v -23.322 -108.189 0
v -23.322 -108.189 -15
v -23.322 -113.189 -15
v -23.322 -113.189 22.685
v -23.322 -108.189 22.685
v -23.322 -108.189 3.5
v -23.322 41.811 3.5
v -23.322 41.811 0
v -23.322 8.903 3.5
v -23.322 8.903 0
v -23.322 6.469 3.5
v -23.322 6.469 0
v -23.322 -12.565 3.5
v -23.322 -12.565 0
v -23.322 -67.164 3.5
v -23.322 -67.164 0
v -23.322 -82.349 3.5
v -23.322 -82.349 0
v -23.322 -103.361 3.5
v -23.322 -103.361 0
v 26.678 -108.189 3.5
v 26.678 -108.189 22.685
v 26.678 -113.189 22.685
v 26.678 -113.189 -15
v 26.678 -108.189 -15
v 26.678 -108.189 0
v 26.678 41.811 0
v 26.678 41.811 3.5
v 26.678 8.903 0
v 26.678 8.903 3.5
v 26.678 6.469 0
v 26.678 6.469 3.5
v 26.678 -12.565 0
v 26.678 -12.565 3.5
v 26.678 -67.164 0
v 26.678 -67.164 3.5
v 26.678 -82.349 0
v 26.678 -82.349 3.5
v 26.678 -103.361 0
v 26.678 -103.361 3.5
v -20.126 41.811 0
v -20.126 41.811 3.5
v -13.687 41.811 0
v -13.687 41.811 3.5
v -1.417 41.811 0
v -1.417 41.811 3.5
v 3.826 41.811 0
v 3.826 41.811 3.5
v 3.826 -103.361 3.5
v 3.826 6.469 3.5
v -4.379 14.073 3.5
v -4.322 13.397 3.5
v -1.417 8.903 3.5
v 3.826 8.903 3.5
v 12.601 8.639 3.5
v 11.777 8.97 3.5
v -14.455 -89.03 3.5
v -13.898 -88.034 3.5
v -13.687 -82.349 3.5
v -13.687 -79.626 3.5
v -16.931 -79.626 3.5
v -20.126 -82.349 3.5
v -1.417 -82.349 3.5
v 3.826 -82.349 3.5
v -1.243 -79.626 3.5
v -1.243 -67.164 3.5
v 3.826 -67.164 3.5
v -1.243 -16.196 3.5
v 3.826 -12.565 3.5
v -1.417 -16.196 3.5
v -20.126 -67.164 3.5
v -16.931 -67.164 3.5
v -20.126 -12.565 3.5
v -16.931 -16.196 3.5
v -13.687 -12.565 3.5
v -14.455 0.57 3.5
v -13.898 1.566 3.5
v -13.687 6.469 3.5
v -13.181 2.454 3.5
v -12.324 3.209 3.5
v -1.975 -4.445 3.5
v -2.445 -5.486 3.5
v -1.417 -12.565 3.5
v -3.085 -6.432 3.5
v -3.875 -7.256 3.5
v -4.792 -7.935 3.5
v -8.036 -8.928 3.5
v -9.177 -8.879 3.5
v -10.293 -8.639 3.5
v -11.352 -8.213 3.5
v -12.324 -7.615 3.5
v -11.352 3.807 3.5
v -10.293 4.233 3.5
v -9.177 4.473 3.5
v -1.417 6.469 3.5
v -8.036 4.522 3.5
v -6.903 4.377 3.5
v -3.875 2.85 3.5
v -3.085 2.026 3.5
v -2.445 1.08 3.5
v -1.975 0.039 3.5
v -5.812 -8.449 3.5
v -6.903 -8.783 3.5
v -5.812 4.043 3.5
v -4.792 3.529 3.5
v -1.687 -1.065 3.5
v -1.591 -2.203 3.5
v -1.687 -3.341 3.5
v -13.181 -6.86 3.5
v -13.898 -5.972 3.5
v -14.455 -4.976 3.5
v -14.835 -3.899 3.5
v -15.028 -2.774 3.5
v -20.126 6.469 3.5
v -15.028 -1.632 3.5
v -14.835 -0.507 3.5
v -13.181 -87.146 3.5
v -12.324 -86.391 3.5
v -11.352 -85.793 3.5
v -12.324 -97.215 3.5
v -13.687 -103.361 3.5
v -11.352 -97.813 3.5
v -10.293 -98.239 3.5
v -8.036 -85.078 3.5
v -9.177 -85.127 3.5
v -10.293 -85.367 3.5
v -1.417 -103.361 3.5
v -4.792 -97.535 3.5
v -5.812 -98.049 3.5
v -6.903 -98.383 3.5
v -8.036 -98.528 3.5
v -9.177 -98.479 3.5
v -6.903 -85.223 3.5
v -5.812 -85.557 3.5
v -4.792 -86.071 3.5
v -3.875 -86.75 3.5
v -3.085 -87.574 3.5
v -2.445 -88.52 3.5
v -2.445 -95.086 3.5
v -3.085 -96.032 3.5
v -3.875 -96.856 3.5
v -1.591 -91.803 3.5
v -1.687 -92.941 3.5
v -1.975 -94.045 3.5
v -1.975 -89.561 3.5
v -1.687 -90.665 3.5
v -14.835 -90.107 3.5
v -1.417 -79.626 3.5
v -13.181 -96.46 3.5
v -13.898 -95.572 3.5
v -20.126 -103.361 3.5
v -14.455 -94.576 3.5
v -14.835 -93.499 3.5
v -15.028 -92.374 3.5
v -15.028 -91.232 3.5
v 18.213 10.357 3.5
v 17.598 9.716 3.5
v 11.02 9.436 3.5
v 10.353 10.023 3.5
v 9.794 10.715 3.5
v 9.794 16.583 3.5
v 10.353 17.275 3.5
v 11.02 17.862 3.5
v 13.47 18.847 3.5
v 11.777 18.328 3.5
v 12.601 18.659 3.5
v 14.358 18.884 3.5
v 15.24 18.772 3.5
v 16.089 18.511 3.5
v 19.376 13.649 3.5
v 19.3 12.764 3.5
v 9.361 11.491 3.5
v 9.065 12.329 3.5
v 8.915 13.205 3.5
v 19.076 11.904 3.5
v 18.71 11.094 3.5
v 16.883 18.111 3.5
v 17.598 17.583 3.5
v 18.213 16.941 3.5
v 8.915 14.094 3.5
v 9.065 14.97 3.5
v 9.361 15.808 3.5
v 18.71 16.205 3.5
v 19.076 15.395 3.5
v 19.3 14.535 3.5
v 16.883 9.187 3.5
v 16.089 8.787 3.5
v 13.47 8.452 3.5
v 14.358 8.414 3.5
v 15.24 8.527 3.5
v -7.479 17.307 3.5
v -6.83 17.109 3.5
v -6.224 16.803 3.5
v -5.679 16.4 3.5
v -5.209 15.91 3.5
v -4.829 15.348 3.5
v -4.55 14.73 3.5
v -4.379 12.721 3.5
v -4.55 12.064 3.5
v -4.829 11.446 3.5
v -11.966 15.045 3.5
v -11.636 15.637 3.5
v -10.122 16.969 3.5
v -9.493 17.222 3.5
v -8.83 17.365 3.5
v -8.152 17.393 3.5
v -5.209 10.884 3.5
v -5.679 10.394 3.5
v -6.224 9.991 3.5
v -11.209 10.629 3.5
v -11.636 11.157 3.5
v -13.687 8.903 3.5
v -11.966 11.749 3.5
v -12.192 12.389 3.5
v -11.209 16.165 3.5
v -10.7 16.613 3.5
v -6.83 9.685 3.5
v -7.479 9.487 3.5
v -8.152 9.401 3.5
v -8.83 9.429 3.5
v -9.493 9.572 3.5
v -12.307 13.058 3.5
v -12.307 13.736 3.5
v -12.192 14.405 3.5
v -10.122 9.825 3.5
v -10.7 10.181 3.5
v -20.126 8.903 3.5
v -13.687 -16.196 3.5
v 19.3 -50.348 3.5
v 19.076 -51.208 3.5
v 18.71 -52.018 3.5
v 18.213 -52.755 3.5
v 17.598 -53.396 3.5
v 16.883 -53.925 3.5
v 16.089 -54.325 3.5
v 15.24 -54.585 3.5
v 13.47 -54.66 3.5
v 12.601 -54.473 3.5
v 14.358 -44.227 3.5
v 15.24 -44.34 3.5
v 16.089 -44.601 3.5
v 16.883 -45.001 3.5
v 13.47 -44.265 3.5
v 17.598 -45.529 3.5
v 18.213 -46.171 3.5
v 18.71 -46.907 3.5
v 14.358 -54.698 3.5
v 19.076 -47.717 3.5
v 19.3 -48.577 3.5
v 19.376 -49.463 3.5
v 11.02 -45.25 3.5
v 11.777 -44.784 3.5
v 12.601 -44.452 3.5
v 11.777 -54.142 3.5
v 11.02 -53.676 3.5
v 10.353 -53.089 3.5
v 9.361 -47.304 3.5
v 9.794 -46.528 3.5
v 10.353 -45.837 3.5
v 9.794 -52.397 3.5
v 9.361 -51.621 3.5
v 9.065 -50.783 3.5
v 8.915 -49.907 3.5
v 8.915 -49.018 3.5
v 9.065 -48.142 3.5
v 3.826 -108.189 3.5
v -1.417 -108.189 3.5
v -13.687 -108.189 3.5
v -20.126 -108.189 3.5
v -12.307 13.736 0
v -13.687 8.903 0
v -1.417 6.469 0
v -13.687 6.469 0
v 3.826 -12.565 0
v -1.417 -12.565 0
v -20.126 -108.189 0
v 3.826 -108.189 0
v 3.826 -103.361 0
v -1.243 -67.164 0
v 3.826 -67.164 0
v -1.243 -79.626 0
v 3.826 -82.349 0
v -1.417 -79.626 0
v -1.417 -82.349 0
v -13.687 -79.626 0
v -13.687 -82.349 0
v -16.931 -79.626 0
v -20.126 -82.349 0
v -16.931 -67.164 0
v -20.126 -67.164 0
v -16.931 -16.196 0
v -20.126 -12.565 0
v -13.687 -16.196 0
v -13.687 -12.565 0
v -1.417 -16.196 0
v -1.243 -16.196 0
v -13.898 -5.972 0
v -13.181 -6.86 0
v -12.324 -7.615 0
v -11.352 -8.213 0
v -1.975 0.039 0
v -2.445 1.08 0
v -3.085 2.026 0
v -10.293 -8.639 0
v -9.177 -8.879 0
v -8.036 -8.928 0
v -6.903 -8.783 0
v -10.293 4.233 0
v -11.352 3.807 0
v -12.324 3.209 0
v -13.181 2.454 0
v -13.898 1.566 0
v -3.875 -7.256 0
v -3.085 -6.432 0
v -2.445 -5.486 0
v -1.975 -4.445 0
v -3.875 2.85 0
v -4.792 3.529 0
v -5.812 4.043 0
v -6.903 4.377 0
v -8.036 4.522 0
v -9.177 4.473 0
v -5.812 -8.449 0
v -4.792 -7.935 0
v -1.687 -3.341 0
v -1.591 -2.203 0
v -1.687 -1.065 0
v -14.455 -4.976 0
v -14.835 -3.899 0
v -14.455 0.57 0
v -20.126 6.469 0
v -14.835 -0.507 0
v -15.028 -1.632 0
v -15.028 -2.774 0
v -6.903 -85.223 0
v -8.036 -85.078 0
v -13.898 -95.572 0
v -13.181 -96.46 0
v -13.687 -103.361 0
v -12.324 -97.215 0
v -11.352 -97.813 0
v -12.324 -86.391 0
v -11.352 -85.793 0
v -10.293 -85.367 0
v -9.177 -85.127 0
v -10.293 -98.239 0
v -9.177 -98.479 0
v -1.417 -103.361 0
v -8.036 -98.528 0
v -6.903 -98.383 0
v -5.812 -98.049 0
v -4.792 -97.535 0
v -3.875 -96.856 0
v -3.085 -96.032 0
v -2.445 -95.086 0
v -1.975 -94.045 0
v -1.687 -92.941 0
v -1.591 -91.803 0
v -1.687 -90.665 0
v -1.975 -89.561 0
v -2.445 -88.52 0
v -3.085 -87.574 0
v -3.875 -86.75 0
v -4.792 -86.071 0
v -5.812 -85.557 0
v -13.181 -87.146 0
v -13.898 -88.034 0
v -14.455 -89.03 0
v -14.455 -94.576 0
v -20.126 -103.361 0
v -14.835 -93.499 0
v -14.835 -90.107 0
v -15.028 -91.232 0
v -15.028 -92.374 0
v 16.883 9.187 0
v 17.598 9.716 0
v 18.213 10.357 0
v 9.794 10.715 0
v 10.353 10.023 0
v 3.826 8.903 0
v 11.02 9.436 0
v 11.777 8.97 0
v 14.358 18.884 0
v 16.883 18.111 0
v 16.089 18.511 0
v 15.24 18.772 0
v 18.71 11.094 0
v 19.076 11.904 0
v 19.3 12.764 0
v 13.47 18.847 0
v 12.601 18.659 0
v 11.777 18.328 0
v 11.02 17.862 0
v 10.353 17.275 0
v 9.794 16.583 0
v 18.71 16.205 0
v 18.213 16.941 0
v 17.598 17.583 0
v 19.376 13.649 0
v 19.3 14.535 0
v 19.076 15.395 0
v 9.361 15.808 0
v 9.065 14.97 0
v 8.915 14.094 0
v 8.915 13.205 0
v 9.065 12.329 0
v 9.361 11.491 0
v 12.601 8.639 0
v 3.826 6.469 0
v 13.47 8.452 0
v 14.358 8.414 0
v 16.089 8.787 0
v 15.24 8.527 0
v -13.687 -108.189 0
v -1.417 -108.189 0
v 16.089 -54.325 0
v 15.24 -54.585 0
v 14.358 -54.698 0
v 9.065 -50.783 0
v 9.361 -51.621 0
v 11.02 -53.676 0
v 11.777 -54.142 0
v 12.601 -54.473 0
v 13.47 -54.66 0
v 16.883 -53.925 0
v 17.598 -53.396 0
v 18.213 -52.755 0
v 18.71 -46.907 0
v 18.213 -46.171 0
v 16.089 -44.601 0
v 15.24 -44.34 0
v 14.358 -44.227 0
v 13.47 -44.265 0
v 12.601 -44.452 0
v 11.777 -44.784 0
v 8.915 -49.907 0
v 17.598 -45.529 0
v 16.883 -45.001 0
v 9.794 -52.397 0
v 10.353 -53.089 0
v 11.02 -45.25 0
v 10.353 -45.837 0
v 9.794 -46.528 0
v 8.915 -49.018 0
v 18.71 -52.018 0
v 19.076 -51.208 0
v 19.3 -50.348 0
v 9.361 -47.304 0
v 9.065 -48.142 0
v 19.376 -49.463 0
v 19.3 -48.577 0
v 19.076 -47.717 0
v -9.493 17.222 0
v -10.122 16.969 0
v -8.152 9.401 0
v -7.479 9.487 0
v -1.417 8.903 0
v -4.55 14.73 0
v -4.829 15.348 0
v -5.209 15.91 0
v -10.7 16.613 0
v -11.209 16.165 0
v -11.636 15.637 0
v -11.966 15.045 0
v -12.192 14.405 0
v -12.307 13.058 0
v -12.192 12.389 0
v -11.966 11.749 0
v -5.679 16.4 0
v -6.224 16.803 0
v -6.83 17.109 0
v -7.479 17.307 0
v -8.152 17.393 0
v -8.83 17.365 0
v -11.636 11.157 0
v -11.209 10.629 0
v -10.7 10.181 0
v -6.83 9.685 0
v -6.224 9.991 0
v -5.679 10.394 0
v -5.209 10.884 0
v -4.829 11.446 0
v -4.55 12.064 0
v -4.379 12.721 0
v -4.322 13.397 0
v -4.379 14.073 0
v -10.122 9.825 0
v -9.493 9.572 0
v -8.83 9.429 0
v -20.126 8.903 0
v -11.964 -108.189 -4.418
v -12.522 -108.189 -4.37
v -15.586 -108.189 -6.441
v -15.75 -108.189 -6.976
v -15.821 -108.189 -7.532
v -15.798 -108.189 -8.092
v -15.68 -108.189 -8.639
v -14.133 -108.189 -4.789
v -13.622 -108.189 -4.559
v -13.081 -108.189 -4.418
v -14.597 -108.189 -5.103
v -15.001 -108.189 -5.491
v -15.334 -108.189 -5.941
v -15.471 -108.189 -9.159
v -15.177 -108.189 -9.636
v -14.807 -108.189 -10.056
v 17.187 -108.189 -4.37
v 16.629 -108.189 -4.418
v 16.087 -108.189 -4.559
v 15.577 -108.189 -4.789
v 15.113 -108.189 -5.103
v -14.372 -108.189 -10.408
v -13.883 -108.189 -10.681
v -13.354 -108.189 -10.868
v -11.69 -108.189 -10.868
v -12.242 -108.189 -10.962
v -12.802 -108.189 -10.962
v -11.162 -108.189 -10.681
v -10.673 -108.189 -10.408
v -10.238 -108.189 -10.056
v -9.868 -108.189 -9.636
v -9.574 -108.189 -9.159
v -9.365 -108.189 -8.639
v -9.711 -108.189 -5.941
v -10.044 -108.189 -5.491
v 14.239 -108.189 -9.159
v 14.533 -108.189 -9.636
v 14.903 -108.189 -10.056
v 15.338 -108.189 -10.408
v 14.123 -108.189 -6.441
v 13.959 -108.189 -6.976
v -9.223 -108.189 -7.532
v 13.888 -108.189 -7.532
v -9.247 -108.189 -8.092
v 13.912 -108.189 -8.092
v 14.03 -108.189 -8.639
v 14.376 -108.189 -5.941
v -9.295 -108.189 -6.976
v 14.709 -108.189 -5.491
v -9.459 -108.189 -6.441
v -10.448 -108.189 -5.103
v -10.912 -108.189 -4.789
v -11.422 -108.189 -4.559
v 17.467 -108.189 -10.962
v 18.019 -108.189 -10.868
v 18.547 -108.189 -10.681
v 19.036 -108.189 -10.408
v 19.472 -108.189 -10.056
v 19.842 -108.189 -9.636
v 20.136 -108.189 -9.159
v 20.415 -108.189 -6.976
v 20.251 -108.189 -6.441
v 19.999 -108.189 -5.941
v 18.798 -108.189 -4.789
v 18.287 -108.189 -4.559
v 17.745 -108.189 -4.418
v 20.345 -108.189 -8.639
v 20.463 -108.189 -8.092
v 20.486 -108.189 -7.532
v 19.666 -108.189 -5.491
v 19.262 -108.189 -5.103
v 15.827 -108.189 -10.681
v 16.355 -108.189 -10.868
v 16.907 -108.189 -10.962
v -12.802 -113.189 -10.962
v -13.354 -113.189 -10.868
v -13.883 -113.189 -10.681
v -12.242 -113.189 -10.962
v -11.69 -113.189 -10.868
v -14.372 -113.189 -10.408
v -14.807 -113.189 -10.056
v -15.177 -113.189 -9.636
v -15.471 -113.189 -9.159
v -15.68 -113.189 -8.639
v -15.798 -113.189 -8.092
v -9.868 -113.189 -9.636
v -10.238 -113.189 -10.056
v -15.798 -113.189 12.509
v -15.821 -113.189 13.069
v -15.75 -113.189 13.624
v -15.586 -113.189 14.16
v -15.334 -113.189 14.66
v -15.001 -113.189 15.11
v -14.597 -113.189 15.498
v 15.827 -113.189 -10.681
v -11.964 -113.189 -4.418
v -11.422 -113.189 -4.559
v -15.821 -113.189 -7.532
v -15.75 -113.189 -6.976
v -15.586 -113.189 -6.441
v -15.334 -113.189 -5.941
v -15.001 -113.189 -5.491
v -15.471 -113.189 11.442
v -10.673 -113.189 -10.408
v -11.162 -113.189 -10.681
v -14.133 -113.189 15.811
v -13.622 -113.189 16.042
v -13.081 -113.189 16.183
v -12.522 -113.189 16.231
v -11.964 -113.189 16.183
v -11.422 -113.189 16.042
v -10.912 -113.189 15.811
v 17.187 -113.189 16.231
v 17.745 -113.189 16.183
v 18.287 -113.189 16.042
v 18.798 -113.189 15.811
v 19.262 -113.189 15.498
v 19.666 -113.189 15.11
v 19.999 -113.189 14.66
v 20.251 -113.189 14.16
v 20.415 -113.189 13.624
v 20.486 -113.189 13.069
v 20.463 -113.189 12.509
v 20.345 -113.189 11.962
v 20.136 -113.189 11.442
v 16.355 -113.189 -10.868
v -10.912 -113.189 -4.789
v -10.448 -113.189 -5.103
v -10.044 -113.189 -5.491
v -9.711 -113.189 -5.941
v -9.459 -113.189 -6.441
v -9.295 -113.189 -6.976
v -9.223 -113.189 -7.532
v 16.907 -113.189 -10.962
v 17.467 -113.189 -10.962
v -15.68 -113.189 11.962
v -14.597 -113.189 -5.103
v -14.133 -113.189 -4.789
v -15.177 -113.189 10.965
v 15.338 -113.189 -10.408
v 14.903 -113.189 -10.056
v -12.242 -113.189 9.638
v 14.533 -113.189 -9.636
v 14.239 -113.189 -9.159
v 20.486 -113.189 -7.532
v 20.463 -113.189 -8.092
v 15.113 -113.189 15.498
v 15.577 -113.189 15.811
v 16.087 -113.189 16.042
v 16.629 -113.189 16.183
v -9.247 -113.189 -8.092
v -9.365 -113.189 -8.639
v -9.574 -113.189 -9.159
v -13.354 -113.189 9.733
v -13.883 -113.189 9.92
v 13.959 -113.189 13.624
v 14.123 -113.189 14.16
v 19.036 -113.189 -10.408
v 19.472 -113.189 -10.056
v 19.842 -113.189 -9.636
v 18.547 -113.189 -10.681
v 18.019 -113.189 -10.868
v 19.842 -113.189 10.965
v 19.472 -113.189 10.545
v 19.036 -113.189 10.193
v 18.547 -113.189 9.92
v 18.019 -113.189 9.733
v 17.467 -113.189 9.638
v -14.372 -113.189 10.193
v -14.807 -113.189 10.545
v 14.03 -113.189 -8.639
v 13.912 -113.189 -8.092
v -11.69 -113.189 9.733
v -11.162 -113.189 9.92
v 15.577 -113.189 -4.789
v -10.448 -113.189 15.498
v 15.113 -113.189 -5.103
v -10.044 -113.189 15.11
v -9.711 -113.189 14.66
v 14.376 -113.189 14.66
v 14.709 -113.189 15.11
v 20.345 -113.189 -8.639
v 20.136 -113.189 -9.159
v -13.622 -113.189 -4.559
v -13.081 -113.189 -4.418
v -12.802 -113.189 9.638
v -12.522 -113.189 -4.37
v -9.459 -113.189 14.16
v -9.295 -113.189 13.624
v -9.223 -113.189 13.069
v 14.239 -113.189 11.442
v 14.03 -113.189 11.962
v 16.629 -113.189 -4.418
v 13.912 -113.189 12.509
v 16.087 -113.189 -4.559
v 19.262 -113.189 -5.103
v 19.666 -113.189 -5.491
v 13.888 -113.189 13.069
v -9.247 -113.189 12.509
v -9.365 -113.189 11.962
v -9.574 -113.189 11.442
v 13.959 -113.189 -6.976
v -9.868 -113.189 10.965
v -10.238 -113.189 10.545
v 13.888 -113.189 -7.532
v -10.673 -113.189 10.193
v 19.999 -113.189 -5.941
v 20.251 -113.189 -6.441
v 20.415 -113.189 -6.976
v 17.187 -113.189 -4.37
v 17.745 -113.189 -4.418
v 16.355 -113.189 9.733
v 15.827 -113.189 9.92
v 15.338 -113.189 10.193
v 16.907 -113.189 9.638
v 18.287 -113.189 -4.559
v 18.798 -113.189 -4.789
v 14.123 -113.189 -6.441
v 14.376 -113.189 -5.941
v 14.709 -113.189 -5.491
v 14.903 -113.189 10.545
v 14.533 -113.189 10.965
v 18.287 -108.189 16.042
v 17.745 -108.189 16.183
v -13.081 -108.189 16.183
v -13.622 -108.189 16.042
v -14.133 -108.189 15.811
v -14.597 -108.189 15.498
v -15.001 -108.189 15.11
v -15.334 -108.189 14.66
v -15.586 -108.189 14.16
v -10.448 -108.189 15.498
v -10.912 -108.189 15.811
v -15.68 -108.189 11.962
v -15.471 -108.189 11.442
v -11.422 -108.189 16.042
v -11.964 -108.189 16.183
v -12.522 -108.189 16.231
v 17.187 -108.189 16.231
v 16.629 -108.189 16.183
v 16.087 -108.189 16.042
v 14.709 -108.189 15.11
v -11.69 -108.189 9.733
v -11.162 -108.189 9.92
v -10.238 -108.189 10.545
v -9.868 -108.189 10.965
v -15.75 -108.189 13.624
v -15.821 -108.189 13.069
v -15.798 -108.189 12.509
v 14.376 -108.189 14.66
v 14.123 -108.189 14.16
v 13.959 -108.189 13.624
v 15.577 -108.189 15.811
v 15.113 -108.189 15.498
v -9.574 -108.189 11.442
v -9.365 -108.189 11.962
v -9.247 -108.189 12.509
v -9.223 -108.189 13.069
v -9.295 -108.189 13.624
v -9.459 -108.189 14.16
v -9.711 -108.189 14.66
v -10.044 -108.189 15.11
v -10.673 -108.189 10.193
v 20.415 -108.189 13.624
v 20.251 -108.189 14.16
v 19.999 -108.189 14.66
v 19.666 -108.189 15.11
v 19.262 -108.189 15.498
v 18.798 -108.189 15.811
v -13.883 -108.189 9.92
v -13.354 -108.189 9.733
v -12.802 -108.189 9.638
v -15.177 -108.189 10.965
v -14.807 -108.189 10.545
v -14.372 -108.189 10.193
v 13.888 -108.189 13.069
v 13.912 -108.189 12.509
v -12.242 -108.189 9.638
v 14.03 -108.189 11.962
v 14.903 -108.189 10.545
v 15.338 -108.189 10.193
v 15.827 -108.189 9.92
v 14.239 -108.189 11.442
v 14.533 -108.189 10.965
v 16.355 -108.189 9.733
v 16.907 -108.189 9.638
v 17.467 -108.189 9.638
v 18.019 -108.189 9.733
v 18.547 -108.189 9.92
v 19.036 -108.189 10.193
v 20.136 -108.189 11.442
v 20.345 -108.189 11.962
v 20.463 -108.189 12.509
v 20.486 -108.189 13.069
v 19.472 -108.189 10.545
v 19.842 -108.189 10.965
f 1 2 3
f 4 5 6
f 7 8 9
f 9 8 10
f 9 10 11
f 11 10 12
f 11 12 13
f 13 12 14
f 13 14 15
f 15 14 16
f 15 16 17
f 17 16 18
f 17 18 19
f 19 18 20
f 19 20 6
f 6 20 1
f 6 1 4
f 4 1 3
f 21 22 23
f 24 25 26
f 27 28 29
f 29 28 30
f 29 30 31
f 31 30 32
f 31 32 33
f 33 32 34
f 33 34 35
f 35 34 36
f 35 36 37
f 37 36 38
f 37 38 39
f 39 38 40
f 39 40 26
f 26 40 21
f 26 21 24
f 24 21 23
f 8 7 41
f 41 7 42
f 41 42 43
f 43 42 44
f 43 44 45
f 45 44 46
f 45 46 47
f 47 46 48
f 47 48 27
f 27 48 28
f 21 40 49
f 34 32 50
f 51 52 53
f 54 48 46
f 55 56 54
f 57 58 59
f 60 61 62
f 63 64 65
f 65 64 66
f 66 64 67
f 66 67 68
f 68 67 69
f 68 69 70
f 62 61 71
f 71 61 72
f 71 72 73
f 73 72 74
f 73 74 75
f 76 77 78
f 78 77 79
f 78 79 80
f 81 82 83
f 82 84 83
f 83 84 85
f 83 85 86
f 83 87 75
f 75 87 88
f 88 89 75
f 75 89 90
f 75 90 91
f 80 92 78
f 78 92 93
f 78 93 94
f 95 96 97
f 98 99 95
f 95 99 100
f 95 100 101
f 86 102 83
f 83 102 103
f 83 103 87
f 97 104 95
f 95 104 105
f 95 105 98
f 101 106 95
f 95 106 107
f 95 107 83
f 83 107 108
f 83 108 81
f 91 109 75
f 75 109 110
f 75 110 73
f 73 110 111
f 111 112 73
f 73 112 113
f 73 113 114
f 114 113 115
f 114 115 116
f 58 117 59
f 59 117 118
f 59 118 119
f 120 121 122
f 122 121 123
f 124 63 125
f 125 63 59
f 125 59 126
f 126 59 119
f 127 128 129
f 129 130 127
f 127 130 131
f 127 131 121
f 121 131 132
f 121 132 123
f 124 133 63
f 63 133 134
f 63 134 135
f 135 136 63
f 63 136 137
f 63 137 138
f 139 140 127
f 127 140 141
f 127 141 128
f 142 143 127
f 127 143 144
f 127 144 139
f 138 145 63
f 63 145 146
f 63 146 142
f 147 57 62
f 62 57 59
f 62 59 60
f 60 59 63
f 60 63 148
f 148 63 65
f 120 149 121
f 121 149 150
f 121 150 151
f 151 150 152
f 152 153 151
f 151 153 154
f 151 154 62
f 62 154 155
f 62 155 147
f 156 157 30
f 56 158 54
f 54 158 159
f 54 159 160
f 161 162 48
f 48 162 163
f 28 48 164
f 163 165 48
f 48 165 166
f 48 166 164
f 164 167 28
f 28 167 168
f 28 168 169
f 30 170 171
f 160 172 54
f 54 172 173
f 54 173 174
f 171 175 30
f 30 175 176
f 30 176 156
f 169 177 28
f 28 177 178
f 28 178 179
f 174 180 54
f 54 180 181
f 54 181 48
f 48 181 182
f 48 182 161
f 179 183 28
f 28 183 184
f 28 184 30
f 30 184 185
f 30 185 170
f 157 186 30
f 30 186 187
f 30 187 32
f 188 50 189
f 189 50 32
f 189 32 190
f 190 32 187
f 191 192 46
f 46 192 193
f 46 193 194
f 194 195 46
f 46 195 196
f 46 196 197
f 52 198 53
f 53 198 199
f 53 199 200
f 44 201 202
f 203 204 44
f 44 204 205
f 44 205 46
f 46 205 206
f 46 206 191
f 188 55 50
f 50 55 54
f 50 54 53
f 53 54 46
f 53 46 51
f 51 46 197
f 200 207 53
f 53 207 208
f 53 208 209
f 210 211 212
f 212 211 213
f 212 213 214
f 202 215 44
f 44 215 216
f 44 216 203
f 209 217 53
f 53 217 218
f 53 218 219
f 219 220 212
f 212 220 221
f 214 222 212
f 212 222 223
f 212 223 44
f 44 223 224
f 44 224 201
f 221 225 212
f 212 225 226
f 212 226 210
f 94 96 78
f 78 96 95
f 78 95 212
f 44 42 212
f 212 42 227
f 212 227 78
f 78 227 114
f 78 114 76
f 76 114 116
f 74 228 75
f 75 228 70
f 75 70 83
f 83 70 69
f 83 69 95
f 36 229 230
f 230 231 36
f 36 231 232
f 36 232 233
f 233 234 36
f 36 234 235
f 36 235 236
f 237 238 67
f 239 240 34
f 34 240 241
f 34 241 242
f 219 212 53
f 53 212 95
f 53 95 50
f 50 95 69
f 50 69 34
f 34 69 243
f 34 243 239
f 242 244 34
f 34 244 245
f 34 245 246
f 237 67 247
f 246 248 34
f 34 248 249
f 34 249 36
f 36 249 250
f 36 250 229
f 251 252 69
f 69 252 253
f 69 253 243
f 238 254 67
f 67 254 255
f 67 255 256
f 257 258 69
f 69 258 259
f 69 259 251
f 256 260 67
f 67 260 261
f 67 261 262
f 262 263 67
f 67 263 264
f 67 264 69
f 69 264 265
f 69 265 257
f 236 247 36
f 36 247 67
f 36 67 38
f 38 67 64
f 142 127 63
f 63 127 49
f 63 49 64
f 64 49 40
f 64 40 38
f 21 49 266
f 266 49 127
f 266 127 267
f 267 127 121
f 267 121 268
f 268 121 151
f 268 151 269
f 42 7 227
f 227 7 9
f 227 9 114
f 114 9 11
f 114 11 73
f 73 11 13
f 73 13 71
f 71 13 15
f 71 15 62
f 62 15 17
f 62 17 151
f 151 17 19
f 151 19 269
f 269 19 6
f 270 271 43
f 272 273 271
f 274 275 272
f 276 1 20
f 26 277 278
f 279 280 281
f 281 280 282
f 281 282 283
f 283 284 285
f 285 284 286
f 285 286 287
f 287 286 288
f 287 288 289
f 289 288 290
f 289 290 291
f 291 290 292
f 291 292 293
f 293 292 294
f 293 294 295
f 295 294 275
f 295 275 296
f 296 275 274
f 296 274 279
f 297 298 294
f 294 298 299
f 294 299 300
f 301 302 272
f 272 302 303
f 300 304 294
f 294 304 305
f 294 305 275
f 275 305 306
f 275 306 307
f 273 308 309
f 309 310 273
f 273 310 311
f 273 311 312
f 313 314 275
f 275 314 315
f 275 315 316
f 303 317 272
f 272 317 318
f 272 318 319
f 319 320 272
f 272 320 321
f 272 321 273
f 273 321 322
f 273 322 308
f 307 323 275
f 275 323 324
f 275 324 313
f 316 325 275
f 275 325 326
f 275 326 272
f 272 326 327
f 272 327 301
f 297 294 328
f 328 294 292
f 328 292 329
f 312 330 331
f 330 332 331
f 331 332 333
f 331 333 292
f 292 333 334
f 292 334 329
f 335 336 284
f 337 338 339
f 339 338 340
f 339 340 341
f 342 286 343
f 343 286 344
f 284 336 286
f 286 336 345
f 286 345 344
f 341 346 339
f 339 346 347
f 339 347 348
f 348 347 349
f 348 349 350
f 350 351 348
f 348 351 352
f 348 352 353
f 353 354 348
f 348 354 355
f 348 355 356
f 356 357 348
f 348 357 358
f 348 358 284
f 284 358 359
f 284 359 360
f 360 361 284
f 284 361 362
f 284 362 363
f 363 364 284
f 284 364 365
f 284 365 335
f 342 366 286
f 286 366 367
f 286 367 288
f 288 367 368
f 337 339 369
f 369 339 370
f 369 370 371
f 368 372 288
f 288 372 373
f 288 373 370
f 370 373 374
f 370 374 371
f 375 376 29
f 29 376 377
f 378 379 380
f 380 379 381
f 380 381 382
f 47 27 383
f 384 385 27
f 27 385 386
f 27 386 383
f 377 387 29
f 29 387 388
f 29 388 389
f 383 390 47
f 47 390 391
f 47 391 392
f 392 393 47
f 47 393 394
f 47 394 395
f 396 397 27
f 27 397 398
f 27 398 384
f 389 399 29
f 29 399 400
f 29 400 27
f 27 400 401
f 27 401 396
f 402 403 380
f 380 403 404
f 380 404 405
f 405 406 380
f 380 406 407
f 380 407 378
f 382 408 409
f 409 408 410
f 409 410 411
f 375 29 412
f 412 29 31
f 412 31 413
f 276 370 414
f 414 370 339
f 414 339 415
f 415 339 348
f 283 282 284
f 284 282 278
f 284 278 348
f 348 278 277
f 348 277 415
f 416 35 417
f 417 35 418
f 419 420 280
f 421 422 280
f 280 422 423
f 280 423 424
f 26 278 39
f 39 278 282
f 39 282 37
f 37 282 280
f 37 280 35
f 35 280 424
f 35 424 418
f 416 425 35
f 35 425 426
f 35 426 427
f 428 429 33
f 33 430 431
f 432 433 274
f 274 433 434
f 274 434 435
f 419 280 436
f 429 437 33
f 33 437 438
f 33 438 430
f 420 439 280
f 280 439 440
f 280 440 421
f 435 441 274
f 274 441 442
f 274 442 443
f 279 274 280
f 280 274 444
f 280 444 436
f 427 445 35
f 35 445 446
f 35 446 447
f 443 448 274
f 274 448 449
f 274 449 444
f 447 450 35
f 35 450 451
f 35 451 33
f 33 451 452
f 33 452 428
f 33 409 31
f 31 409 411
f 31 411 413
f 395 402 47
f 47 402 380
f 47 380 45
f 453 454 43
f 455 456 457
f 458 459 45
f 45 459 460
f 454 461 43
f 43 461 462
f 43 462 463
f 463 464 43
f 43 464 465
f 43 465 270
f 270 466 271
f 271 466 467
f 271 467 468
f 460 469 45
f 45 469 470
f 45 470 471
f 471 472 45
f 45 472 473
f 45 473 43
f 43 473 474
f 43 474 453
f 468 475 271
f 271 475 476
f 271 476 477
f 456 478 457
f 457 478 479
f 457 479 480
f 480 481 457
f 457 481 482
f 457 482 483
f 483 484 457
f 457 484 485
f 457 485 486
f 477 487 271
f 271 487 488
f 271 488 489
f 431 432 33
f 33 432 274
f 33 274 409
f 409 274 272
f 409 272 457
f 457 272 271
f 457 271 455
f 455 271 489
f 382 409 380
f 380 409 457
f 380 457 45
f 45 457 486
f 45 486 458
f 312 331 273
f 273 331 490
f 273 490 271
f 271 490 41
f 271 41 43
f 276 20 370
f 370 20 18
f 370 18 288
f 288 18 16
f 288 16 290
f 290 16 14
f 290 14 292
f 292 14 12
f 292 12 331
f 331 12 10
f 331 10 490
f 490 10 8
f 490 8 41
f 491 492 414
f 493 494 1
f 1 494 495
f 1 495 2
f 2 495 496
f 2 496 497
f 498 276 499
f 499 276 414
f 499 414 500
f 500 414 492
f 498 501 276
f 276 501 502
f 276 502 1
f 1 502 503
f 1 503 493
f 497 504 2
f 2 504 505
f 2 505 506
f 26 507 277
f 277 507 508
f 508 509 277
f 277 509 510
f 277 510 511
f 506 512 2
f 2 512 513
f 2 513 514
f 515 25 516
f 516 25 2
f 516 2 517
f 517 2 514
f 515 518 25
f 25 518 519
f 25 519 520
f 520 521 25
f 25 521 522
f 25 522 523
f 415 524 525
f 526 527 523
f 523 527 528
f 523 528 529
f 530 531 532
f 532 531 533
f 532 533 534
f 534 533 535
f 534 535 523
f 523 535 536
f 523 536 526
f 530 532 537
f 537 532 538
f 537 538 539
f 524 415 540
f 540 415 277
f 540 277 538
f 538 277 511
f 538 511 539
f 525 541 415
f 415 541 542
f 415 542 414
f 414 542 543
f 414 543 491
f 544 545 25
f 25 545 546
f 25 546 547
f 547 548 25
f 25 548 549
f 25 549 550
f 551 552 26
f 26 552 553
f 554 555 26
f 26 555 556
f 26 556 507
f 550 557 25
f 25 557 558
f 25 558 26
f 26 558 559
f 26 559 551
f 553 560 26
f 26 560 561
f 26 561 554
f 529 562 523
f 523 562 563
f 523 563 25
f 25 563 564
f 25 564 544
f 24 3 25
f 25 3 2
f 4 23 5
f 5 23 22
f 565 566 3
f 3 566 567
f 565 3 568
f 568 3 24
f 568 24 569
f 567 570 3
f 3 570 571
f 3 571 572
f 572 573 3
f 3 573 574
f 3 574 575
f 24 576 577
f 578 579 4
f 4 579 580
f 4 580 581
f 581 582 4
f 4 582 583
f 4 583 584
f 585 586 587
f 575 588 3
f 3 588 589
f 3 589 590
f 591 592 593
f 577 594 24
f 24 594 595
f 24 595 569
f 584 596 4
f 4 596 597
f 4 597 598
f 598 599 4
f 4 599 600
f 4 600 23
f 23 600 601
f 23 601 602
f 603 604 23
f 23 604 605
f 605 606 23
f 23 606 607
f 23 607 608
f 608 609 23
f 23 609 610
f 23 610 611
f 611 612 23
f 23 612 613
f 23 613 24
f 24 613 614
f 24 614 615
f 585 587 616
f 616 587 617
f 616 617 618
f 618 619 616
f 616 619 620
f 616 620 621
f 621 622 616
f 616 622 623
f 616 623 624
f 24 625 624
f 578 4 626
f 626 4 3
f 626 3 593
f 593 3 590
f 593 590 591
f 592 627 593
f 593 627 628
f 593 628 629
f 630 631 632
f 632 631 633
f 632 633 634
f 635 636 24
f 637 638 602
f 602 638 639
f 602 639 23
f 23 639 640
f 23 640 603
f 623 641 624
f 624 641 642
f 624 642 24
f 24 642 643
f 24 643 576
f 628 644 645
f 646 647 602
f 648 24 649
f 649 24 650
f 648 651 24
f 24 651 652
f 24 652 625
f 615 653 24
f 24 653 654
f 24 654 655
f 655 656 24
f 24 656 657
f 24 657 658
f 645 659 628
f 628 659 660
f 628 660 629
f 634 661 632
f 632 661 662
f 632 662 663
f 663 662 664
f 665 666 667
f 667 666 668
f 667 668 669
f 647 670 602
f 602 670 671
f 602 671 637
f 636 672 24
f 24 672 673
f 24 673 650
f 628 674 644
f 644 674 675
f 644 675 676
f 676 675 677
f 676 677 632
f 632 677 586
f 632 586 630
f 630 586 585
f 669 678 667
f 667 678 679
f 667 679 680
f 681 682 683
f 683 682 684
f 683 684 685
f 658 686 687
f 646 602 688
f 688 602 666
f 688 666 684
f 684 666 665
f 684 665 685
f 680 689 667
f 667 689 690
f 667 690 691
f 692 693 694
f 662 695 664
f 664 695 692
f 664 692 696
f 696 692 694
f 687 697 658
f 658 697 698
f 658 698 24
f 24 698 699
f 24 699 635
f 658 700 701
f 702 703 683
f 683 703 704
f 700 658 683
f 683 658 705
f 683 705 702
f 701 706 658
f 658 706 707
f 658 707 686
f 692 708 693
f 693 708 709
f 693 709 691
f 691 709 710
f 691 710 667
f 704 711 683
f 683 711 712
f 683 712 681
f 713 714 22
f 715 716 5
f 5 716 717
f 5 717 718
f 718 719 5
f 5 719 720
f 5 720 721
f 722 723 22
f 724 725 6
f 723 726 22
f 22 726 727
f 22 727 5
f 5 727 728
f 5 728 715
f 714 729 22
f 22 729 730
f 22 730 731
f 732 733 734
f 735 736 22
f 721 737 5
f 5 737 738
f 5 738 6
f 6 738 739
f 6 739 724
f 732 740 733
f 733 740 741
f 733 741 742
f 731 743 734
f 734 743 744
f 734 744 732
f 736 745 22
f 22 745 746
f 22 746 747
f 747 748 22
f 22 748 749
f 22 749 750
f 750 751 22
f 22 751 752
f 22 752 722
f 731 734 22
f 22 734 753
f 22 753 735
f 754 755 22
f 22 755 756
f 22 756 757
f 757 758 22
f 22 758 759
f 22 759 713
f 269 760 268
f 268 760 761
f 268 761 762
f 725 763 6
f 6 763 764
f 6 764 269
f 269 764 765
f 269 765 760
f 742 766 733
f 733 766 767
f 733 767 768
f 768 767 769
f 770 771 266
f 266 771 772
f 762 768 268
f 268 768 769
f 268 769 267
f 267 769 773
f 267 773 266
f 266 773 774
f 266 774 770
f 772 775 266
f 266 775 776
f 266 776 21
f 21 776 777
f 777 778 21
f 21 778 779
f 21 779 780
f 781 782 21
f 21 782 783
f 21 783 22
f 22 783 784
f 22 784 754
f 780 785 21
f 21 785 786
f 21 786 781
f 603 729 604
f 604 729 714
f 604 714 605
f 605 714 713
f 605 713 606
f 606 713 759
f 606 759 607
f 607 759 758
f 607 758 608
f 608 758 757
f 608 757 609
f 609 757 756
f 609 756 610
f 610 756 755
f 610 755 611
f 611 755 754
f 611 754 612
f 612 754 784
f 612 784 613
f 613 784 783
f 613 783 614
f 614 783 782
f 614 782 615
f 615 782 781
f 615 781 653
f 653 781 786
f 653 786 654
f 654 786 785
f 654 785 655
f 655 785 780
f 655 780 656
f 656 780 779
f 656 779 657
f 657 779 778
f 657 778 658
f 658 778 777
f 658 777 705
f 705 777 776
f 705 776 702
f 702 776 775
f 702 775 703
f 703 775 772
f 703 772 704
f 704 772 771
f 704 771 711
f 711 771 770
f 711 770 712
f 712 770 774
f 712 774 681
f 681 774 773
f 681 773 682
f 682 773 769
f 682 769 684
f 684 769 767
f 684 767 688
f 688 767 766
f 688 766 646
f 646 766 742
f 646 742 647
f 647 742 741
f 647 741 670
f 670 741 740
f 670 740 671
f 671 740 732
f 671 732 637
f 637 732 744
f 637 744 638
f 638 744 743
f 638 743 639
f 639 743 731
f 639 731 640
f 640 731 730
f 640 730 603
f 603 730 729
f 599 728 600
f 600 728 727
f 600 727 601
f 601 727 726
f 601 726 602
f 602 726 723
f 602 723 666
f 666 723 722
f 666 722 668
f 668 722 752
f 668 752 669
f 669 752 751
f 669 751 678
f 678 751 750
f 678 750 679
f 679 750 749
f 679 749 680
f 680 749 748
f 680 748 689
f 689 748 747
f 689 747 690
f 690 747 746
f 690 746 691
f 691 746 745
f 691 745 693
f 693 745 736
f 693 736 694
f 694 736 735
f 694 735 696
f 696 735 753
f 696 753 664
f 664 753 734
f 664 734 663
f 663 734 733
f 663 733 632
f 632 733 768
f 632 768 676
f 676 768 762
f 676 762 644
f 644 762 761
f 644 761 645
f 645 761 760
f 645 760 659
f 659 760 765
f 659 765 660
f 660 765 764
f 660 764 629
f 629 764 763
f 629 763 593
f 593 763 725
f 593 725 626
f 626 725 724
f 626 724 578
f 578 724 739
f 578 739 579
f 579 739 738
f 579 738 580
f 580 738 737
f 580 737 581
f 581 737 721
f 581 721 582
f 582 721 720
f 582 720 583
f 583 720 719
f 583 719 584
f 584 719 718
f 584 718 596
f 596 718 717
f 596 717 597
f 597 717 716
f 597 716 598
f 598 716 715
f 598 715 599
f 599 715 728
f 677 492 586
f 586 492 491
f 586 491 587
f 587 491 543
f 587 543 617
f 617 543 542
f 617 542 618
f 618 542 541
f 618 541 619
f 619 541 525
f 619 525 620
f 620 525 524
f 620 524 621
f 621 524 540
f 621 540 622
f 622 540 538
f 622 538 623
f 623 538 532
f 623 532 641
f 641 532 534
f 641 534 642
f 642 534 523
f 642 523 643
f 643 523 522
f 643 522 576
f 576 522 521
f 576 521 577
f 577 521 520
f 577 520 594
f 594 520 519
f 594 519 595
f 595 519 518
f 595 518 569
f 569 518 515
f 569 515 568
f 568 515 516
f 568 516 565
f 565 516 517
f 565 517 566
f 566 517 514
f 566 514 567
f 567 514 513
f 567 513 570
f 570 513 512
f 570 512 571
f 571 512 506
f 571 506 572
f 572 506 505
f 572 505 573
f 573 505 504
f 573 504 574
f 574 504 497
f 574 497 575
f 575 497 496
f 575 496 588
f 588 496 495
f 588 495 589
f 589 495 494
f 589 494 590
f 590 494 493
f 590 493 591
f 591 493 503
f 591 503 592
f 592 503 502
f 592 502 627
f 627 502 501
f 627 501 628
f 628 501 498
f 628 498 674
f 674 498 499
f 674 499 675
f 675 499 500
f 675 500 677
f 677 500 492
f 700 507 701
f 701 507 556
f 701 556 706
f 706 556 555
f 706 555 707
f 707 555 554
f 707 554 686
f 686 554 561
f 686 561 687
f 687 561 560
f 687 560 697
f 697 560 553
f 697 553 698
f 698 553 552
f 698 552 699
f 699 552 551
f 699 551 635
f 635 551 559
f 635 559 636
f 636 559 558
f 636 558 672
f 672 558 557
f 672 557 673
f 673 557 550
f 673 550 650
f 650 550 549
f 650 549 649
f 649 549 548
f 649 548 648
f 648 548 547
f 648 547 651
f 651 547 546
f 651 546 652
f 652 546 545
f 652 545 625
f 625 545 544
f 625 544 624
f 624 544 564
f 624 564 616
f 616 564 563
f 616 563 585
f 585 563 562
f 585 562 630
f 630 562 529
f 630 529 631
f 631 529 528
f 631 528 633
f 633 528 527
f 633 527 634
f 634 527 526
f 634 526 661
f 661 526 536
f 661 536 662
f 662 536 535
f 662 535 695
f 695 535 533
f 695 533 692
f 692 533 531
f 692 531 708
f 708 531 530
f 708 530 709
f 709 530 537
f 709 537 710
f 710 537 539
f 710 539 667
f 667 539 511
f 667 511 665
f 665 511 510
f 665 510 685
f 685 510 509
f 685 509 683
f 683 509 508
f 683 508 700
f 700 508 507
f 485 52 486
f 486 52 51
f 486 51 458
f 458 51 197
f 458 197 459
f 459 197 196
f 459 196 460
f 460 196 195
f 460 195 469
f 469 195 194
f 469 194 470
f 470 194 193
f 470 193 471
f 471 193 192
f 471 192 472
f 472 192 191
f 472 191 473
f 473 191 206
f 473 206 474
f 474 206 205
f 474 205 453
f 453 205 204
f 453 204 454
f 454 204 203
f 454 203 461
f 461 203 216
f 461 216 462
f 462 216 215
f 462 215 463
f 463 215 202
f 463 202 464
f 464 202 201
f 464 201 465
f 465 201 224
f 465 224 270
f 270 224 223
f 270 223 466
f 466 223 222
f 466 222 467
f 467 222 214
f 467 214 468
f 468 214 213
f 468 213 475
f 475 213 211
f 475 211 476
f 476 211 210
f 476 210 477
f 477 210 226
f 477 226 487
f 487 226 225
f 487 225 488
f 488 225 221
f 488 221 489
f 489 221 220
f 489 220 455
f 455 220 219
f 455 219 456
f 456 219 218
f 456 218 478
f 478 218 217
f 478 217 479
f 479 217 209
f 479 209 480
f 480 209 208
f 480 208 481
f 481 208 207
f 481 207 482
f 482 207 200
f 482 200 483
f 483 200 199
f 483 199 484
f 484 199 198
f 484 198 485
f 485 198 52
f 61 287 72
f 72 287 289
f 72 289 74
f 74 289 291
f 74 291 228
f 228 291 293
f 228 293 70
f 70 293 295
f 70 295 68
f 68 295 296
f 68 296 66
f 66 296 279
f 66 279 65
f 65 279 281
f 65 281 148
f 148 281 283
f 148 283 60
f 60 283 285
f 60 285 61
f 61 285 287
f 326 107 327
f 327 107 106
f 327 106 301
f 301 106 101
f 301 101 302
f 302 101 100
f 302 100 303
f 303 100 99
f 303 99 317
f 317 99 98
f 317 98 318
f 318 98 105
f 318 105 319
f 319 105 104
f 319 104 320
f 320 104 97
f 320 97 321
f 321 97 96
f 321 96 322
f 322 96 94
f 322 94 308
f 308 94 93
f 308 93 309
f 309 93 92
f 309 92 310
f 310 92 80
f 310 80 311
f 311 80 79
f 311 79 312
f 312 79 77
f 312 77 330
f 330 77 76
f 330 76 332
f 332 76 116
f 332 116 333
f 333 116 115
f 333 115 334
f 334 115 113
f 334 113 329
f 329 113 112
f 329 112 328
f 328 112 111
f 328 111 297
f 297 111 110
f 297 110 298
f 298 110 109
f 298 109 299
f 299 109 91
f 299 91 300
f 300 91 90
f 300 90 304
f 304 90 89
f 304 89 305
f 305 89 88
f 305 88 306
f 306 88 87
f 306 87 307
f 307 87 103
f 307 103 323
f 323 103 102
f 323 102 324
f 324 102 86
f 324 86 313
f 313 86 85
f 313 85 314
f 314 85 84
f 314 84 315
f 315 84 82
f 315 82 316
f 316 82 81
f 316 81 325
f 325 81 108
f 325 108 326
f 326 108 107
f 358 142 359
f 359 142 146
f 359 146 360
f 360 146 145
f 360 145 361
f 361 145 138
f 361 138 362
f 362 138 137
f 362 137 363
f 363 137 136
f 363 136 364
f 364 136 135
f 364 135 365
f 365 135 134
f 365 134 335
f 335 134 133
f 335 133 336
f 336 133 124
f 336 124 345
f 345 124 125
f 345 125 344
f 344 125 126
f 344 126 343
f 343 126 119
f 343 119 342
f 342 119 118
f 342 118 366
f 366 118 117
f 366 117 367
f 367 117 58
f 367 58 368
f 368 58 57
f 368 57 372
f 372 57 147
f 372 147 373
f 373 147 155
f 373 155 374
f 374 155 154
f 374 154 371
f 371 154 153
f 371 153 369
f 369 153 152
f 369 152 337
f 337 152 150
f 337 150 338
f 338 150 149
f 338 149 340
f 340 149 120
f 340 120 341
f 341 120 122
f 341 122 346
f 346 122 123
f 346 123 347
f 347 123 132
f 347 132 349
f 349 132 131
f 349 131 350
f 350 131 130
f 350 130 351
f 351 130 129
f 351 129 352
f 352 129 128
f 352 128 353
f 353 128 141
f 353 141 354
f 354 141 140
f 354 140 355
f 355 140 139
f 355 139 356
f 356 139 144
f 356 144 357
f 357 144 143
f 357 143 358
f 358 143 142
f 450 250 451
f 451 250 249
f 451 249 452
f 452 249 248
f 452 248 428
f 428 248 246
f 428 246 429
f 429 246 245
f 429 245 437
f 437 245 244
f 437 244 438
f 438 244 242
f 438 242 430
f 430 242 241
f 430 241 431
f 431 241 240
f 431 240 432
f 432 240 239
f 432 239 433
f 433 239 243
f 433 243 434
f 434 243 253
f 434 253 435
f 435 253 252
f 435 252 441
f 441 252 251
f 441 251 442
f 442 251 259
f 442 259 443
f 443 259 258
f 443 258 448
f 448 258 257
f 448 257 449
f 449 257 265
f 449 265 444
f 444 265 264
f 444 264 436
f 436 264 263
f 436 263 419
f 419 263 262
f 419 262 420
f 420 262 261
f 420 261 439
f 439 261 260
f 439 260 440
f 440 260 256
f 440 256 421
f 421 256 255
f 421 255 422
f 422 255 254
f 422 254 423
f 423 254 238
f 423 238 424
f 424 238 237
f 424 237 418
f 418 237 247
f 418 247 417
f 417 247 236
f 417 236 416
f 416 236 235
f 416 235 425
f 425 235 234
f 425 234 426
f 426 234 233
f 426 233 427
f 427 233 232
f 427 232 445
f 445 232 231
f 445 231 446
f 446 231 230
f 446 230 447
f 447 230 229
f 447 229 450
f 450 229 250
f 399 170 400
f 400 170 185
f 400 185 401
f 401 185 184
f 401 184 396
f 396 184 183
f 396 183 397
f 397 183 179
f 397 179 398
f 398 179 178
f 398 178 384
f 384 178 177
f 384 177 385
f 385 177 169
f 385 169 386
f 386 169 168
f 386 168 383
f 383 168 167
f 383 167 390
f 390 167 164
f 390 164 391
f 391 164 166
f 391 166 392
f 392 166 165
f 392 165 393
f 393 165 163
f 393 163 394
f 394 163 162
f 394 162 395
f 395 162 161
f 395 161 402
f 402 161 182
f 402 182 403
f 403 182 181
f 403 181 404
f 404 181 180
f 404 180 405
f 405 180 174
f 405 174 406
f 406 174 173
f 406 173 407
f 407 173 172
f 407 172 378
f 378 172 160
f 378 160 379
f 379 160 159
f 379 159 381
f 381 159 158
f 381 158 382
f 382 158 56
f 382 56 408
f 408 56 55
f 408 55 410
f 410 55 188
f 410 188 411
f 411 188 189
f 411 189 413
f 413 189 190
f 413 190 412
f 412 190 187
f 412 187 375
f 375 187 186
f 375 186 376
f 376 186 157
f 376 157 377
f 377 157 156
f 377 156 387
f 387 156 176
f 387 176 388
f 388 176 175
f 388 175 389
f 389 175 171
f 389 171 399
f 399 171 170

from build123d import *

# Parameters (mm, degrees)
SKETCH_1_W          = 50
SKETCH_1_H          = 150
EXTRUDE_1_DEPTH     = 3.5
SKETCH_8_W          = 50
SKETCH_8_H          = 15
SKETCH_8_H_2        = 3.5
SKETCH_8_H_3        = 19.185479081
EXTRUDE_3_DEPTH     = 5
SKETCH_9_R          = 3.302
CUT_EXTRUDE_7_DEPTH = 5
SKETCH_10_R         = 6.731
SKETCH_10_R_2       = 4
SKETCH_10_W         = 15.687252276
SKETCH_10_H         = 63.430283682
CUT_EXTRUDE_8_DEPTH = 10
SKETCH_5_R          = 5.24
CUT_EXTRUDE_9_DEPTH = 10


with BuildPart() as part:
    # 草图1 → 凸台-拉伸1 (new body)
    with BuildSketch(Plane.XY):
        with Locations((1.67844523, -33.188535046)):
            Rectangle(SKETCH_1_W, SKETCH_1_H)
    extrude(amount=EXTRUDE_1_DEPTH)

    # 草图8 → 凸台-拉伸3 (add)
    with BuildSketch(Plane.XZ.offset(108.188535046)):
        with Locations((1.67844523, -7.5)):
            Rectangle(SKETCH_8_W, SKETCH_8_H)
        with Locations((1.67844523, 1.75)):
            Rectangle(SKETCH_8_W, SKETCH_8_H_2)
        with Locations((1.67844523, 13.092739541)):
            Rectangle(SKETCH_8_W, SKETCH_8_H_3)
    extrude(amount=EXTRUDE_3_DEPTH)

    # 草图9 → 切除-拉伸7 (cut)
    with BuildSketch(Plane(origin=(0, -108.188535046, 0), x_dir=(1, 0, 0), z_dir=(0, 1, 0))):
        with Locations(Location((-12.522466831, 7.672144746, 0), (0, 0, 270))):
            Circle(SKETCH_9_R)
        with Locations(Location((17.187336033, 7.672144746, 0), (0, 0, 270))):
            Circle(SKETCH_9_R)
        with Locations(Location((-12.522466831, -12.928520448, 0), (0, 0, 270))):
            Circle(SKETCH_9_R)
        with Locations(Location((17.187336033, -12.928520448, 0), (0, 0, 270))):
            Circle(SKETCH_9_R)
    extrude(amount=-CUT_EXTRUDE_7_DEPTH, mode=Mode.SUBTRACT)

    # 草图10 → 切除-拉伸8 (cut)
    with BuildSketch(Plane.XY.offset(3.5)):
        with Locations((-8.32155477, -91.802996241)):
            Circle(SKETCH_10_R)
        with Locations((-8.32155477, -2.202996241)):
            Circle(SKETCH_10_R)
        with Locations((-8.32155477, 13.397003759)):
            Circle(SKETCH_10_R_2)
        with Locations((-9.087030569, -47.911053293)):
            Rectangle(SKETCH_10_W, SKETCH_10_H)
    extrude(amount=-CUT_EXTRUDE_8_DEPTH, mode=Mode.SUBTRACT)

    # 草图5 → 切除-拉伸9 (cut)
    with BuildSketch(Plane.XY.offset(3.5)):
        with Locations((14.135684743, 13.64917749)):
            Circle(SKETCH_5_R)
        with Locations((14.135684743, -49.462755876)):
            Circle(SKETCH_5_R)
    extrude(amount=-CUT_EXTRUDE_9_DEPTH, mode=Mode.SUBTRACT)


solid = part.part
